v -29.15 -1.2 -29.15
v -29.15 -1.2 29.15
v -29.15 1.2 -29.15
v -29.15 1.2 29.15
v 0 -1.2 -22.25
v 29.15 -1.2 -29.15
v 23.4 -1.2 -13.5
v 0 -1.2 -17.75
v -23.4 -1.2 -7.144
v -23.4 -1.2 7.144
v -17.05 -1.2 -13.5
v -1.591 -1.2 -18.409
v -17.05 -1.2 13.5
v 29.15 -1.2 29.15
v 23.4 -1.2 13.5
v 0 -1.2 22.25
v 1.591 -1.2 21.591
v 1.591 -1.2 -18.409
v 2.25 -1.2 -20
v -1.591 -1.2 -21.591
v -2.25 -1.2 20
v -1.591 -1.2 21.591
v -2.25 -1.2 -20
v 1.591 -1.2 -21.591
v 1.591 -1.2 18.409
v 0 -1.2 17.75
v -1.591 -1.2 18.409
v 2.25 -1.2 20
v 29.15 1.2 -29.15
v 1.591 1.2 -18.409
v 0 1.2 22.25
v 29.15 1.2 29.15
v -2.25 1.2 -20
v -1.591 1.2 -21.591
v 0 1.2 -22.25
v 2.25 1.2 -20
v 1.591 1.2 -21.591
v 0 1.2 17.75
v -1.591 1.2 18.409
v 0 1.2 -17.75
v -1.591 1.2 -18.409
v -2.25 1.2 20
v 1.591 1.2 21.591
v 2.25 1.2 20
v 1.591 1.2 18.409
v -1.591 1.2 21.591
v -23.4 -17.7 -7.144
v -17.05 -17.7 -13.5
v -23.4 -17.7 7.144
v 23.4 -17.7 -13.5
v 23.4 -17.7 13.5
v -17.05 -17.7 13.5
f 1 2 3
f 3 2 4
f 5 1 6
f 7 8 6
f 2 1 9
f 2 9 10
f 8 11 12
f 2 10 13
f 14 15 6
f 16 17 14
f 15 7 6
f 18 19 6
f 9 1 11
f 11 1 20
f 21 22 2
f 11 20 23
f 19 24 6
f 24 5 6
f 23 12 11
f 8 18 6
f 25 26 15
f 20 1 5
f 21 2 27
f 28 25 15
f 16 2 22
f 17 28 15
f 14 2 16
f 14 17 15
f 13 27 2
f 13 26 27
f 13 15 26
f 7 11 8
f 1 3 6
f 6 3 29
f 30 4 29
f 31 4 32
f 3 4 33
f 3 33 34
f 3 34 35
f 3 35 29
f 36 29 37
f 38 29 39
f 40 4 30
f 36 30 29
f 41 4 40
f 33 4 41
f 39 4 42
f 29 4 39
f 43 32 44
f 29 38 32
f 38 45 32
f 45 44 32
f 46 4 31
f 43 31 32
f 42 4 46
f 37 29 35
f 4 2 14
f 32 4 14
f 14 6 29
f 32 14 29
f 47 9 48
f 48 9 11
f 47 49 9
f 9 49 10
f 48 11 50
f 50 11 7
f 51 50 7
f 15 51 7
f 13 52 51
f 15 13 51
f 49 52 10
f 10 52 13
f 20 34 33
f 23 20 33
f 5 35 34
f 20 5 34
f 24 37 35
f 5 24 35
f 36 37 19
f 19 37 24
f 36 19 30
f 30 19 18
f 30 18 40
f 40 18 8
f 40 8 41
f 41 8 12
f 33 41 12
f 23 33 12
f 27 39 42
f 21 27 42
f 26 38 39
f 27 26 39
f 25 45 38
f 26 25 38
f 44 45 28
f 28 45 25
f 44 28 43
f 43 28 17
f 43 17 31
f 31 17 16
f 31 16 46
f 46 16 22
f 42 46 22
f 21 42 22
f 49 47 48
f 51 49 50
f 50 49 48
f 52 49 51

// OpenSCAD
// Module definition of an IEC320 C14 Socket with Rocker Switch.
module iec320_socket() {
	// Frame dimensions
	flength=58.3; // x
	fwidth=2.4;   // Y (depth)
	fheight=58.3; // Z
	// Electronics dimensions
	elength=46.8; // X
	elength2=6.35;// X1
	ewidth=16.5;  // Y (depth)
	eheight=27.0; // Z
	eheight2=14.2875; // Z2
	// other vars
	offset1 = elength2/2.0; // translate electronics block 1 this much
	offset2 = (elength/2.0) - offset1;
	

	// Mounting screw hole dimensions
	sdiam=4.5; // screw hole diameter
	shoffset=20.0; // screw hole offset from center

	union() {
	// Frame
	difference() {
		cube([flength,fwidth,fheight],center=true);
			// Two mounting holes
			for(y=[shoffset,-shoffset]) {
				translate([0,(fwidth/2)+0.1,y]) 
					rotate([90,0,0]) 
						cylinder(h=fwidth+0.2,d=sdiam);
			}
		}
		
		// Electronics
		translate([0,(-ewidth/2.0)-(fwidth/2.0),0]) {
			hull() {
				// Main cube
				translate([offset1,0,0]) 
					cube([elength-elength2,ewidth,eheight],center=true);
				// narrowing end
				translate([-offset2,0,0])
					cube([elength2,ewidth,eheight2],center=true);
				}
		}	
	}

}

iec320_socket();
